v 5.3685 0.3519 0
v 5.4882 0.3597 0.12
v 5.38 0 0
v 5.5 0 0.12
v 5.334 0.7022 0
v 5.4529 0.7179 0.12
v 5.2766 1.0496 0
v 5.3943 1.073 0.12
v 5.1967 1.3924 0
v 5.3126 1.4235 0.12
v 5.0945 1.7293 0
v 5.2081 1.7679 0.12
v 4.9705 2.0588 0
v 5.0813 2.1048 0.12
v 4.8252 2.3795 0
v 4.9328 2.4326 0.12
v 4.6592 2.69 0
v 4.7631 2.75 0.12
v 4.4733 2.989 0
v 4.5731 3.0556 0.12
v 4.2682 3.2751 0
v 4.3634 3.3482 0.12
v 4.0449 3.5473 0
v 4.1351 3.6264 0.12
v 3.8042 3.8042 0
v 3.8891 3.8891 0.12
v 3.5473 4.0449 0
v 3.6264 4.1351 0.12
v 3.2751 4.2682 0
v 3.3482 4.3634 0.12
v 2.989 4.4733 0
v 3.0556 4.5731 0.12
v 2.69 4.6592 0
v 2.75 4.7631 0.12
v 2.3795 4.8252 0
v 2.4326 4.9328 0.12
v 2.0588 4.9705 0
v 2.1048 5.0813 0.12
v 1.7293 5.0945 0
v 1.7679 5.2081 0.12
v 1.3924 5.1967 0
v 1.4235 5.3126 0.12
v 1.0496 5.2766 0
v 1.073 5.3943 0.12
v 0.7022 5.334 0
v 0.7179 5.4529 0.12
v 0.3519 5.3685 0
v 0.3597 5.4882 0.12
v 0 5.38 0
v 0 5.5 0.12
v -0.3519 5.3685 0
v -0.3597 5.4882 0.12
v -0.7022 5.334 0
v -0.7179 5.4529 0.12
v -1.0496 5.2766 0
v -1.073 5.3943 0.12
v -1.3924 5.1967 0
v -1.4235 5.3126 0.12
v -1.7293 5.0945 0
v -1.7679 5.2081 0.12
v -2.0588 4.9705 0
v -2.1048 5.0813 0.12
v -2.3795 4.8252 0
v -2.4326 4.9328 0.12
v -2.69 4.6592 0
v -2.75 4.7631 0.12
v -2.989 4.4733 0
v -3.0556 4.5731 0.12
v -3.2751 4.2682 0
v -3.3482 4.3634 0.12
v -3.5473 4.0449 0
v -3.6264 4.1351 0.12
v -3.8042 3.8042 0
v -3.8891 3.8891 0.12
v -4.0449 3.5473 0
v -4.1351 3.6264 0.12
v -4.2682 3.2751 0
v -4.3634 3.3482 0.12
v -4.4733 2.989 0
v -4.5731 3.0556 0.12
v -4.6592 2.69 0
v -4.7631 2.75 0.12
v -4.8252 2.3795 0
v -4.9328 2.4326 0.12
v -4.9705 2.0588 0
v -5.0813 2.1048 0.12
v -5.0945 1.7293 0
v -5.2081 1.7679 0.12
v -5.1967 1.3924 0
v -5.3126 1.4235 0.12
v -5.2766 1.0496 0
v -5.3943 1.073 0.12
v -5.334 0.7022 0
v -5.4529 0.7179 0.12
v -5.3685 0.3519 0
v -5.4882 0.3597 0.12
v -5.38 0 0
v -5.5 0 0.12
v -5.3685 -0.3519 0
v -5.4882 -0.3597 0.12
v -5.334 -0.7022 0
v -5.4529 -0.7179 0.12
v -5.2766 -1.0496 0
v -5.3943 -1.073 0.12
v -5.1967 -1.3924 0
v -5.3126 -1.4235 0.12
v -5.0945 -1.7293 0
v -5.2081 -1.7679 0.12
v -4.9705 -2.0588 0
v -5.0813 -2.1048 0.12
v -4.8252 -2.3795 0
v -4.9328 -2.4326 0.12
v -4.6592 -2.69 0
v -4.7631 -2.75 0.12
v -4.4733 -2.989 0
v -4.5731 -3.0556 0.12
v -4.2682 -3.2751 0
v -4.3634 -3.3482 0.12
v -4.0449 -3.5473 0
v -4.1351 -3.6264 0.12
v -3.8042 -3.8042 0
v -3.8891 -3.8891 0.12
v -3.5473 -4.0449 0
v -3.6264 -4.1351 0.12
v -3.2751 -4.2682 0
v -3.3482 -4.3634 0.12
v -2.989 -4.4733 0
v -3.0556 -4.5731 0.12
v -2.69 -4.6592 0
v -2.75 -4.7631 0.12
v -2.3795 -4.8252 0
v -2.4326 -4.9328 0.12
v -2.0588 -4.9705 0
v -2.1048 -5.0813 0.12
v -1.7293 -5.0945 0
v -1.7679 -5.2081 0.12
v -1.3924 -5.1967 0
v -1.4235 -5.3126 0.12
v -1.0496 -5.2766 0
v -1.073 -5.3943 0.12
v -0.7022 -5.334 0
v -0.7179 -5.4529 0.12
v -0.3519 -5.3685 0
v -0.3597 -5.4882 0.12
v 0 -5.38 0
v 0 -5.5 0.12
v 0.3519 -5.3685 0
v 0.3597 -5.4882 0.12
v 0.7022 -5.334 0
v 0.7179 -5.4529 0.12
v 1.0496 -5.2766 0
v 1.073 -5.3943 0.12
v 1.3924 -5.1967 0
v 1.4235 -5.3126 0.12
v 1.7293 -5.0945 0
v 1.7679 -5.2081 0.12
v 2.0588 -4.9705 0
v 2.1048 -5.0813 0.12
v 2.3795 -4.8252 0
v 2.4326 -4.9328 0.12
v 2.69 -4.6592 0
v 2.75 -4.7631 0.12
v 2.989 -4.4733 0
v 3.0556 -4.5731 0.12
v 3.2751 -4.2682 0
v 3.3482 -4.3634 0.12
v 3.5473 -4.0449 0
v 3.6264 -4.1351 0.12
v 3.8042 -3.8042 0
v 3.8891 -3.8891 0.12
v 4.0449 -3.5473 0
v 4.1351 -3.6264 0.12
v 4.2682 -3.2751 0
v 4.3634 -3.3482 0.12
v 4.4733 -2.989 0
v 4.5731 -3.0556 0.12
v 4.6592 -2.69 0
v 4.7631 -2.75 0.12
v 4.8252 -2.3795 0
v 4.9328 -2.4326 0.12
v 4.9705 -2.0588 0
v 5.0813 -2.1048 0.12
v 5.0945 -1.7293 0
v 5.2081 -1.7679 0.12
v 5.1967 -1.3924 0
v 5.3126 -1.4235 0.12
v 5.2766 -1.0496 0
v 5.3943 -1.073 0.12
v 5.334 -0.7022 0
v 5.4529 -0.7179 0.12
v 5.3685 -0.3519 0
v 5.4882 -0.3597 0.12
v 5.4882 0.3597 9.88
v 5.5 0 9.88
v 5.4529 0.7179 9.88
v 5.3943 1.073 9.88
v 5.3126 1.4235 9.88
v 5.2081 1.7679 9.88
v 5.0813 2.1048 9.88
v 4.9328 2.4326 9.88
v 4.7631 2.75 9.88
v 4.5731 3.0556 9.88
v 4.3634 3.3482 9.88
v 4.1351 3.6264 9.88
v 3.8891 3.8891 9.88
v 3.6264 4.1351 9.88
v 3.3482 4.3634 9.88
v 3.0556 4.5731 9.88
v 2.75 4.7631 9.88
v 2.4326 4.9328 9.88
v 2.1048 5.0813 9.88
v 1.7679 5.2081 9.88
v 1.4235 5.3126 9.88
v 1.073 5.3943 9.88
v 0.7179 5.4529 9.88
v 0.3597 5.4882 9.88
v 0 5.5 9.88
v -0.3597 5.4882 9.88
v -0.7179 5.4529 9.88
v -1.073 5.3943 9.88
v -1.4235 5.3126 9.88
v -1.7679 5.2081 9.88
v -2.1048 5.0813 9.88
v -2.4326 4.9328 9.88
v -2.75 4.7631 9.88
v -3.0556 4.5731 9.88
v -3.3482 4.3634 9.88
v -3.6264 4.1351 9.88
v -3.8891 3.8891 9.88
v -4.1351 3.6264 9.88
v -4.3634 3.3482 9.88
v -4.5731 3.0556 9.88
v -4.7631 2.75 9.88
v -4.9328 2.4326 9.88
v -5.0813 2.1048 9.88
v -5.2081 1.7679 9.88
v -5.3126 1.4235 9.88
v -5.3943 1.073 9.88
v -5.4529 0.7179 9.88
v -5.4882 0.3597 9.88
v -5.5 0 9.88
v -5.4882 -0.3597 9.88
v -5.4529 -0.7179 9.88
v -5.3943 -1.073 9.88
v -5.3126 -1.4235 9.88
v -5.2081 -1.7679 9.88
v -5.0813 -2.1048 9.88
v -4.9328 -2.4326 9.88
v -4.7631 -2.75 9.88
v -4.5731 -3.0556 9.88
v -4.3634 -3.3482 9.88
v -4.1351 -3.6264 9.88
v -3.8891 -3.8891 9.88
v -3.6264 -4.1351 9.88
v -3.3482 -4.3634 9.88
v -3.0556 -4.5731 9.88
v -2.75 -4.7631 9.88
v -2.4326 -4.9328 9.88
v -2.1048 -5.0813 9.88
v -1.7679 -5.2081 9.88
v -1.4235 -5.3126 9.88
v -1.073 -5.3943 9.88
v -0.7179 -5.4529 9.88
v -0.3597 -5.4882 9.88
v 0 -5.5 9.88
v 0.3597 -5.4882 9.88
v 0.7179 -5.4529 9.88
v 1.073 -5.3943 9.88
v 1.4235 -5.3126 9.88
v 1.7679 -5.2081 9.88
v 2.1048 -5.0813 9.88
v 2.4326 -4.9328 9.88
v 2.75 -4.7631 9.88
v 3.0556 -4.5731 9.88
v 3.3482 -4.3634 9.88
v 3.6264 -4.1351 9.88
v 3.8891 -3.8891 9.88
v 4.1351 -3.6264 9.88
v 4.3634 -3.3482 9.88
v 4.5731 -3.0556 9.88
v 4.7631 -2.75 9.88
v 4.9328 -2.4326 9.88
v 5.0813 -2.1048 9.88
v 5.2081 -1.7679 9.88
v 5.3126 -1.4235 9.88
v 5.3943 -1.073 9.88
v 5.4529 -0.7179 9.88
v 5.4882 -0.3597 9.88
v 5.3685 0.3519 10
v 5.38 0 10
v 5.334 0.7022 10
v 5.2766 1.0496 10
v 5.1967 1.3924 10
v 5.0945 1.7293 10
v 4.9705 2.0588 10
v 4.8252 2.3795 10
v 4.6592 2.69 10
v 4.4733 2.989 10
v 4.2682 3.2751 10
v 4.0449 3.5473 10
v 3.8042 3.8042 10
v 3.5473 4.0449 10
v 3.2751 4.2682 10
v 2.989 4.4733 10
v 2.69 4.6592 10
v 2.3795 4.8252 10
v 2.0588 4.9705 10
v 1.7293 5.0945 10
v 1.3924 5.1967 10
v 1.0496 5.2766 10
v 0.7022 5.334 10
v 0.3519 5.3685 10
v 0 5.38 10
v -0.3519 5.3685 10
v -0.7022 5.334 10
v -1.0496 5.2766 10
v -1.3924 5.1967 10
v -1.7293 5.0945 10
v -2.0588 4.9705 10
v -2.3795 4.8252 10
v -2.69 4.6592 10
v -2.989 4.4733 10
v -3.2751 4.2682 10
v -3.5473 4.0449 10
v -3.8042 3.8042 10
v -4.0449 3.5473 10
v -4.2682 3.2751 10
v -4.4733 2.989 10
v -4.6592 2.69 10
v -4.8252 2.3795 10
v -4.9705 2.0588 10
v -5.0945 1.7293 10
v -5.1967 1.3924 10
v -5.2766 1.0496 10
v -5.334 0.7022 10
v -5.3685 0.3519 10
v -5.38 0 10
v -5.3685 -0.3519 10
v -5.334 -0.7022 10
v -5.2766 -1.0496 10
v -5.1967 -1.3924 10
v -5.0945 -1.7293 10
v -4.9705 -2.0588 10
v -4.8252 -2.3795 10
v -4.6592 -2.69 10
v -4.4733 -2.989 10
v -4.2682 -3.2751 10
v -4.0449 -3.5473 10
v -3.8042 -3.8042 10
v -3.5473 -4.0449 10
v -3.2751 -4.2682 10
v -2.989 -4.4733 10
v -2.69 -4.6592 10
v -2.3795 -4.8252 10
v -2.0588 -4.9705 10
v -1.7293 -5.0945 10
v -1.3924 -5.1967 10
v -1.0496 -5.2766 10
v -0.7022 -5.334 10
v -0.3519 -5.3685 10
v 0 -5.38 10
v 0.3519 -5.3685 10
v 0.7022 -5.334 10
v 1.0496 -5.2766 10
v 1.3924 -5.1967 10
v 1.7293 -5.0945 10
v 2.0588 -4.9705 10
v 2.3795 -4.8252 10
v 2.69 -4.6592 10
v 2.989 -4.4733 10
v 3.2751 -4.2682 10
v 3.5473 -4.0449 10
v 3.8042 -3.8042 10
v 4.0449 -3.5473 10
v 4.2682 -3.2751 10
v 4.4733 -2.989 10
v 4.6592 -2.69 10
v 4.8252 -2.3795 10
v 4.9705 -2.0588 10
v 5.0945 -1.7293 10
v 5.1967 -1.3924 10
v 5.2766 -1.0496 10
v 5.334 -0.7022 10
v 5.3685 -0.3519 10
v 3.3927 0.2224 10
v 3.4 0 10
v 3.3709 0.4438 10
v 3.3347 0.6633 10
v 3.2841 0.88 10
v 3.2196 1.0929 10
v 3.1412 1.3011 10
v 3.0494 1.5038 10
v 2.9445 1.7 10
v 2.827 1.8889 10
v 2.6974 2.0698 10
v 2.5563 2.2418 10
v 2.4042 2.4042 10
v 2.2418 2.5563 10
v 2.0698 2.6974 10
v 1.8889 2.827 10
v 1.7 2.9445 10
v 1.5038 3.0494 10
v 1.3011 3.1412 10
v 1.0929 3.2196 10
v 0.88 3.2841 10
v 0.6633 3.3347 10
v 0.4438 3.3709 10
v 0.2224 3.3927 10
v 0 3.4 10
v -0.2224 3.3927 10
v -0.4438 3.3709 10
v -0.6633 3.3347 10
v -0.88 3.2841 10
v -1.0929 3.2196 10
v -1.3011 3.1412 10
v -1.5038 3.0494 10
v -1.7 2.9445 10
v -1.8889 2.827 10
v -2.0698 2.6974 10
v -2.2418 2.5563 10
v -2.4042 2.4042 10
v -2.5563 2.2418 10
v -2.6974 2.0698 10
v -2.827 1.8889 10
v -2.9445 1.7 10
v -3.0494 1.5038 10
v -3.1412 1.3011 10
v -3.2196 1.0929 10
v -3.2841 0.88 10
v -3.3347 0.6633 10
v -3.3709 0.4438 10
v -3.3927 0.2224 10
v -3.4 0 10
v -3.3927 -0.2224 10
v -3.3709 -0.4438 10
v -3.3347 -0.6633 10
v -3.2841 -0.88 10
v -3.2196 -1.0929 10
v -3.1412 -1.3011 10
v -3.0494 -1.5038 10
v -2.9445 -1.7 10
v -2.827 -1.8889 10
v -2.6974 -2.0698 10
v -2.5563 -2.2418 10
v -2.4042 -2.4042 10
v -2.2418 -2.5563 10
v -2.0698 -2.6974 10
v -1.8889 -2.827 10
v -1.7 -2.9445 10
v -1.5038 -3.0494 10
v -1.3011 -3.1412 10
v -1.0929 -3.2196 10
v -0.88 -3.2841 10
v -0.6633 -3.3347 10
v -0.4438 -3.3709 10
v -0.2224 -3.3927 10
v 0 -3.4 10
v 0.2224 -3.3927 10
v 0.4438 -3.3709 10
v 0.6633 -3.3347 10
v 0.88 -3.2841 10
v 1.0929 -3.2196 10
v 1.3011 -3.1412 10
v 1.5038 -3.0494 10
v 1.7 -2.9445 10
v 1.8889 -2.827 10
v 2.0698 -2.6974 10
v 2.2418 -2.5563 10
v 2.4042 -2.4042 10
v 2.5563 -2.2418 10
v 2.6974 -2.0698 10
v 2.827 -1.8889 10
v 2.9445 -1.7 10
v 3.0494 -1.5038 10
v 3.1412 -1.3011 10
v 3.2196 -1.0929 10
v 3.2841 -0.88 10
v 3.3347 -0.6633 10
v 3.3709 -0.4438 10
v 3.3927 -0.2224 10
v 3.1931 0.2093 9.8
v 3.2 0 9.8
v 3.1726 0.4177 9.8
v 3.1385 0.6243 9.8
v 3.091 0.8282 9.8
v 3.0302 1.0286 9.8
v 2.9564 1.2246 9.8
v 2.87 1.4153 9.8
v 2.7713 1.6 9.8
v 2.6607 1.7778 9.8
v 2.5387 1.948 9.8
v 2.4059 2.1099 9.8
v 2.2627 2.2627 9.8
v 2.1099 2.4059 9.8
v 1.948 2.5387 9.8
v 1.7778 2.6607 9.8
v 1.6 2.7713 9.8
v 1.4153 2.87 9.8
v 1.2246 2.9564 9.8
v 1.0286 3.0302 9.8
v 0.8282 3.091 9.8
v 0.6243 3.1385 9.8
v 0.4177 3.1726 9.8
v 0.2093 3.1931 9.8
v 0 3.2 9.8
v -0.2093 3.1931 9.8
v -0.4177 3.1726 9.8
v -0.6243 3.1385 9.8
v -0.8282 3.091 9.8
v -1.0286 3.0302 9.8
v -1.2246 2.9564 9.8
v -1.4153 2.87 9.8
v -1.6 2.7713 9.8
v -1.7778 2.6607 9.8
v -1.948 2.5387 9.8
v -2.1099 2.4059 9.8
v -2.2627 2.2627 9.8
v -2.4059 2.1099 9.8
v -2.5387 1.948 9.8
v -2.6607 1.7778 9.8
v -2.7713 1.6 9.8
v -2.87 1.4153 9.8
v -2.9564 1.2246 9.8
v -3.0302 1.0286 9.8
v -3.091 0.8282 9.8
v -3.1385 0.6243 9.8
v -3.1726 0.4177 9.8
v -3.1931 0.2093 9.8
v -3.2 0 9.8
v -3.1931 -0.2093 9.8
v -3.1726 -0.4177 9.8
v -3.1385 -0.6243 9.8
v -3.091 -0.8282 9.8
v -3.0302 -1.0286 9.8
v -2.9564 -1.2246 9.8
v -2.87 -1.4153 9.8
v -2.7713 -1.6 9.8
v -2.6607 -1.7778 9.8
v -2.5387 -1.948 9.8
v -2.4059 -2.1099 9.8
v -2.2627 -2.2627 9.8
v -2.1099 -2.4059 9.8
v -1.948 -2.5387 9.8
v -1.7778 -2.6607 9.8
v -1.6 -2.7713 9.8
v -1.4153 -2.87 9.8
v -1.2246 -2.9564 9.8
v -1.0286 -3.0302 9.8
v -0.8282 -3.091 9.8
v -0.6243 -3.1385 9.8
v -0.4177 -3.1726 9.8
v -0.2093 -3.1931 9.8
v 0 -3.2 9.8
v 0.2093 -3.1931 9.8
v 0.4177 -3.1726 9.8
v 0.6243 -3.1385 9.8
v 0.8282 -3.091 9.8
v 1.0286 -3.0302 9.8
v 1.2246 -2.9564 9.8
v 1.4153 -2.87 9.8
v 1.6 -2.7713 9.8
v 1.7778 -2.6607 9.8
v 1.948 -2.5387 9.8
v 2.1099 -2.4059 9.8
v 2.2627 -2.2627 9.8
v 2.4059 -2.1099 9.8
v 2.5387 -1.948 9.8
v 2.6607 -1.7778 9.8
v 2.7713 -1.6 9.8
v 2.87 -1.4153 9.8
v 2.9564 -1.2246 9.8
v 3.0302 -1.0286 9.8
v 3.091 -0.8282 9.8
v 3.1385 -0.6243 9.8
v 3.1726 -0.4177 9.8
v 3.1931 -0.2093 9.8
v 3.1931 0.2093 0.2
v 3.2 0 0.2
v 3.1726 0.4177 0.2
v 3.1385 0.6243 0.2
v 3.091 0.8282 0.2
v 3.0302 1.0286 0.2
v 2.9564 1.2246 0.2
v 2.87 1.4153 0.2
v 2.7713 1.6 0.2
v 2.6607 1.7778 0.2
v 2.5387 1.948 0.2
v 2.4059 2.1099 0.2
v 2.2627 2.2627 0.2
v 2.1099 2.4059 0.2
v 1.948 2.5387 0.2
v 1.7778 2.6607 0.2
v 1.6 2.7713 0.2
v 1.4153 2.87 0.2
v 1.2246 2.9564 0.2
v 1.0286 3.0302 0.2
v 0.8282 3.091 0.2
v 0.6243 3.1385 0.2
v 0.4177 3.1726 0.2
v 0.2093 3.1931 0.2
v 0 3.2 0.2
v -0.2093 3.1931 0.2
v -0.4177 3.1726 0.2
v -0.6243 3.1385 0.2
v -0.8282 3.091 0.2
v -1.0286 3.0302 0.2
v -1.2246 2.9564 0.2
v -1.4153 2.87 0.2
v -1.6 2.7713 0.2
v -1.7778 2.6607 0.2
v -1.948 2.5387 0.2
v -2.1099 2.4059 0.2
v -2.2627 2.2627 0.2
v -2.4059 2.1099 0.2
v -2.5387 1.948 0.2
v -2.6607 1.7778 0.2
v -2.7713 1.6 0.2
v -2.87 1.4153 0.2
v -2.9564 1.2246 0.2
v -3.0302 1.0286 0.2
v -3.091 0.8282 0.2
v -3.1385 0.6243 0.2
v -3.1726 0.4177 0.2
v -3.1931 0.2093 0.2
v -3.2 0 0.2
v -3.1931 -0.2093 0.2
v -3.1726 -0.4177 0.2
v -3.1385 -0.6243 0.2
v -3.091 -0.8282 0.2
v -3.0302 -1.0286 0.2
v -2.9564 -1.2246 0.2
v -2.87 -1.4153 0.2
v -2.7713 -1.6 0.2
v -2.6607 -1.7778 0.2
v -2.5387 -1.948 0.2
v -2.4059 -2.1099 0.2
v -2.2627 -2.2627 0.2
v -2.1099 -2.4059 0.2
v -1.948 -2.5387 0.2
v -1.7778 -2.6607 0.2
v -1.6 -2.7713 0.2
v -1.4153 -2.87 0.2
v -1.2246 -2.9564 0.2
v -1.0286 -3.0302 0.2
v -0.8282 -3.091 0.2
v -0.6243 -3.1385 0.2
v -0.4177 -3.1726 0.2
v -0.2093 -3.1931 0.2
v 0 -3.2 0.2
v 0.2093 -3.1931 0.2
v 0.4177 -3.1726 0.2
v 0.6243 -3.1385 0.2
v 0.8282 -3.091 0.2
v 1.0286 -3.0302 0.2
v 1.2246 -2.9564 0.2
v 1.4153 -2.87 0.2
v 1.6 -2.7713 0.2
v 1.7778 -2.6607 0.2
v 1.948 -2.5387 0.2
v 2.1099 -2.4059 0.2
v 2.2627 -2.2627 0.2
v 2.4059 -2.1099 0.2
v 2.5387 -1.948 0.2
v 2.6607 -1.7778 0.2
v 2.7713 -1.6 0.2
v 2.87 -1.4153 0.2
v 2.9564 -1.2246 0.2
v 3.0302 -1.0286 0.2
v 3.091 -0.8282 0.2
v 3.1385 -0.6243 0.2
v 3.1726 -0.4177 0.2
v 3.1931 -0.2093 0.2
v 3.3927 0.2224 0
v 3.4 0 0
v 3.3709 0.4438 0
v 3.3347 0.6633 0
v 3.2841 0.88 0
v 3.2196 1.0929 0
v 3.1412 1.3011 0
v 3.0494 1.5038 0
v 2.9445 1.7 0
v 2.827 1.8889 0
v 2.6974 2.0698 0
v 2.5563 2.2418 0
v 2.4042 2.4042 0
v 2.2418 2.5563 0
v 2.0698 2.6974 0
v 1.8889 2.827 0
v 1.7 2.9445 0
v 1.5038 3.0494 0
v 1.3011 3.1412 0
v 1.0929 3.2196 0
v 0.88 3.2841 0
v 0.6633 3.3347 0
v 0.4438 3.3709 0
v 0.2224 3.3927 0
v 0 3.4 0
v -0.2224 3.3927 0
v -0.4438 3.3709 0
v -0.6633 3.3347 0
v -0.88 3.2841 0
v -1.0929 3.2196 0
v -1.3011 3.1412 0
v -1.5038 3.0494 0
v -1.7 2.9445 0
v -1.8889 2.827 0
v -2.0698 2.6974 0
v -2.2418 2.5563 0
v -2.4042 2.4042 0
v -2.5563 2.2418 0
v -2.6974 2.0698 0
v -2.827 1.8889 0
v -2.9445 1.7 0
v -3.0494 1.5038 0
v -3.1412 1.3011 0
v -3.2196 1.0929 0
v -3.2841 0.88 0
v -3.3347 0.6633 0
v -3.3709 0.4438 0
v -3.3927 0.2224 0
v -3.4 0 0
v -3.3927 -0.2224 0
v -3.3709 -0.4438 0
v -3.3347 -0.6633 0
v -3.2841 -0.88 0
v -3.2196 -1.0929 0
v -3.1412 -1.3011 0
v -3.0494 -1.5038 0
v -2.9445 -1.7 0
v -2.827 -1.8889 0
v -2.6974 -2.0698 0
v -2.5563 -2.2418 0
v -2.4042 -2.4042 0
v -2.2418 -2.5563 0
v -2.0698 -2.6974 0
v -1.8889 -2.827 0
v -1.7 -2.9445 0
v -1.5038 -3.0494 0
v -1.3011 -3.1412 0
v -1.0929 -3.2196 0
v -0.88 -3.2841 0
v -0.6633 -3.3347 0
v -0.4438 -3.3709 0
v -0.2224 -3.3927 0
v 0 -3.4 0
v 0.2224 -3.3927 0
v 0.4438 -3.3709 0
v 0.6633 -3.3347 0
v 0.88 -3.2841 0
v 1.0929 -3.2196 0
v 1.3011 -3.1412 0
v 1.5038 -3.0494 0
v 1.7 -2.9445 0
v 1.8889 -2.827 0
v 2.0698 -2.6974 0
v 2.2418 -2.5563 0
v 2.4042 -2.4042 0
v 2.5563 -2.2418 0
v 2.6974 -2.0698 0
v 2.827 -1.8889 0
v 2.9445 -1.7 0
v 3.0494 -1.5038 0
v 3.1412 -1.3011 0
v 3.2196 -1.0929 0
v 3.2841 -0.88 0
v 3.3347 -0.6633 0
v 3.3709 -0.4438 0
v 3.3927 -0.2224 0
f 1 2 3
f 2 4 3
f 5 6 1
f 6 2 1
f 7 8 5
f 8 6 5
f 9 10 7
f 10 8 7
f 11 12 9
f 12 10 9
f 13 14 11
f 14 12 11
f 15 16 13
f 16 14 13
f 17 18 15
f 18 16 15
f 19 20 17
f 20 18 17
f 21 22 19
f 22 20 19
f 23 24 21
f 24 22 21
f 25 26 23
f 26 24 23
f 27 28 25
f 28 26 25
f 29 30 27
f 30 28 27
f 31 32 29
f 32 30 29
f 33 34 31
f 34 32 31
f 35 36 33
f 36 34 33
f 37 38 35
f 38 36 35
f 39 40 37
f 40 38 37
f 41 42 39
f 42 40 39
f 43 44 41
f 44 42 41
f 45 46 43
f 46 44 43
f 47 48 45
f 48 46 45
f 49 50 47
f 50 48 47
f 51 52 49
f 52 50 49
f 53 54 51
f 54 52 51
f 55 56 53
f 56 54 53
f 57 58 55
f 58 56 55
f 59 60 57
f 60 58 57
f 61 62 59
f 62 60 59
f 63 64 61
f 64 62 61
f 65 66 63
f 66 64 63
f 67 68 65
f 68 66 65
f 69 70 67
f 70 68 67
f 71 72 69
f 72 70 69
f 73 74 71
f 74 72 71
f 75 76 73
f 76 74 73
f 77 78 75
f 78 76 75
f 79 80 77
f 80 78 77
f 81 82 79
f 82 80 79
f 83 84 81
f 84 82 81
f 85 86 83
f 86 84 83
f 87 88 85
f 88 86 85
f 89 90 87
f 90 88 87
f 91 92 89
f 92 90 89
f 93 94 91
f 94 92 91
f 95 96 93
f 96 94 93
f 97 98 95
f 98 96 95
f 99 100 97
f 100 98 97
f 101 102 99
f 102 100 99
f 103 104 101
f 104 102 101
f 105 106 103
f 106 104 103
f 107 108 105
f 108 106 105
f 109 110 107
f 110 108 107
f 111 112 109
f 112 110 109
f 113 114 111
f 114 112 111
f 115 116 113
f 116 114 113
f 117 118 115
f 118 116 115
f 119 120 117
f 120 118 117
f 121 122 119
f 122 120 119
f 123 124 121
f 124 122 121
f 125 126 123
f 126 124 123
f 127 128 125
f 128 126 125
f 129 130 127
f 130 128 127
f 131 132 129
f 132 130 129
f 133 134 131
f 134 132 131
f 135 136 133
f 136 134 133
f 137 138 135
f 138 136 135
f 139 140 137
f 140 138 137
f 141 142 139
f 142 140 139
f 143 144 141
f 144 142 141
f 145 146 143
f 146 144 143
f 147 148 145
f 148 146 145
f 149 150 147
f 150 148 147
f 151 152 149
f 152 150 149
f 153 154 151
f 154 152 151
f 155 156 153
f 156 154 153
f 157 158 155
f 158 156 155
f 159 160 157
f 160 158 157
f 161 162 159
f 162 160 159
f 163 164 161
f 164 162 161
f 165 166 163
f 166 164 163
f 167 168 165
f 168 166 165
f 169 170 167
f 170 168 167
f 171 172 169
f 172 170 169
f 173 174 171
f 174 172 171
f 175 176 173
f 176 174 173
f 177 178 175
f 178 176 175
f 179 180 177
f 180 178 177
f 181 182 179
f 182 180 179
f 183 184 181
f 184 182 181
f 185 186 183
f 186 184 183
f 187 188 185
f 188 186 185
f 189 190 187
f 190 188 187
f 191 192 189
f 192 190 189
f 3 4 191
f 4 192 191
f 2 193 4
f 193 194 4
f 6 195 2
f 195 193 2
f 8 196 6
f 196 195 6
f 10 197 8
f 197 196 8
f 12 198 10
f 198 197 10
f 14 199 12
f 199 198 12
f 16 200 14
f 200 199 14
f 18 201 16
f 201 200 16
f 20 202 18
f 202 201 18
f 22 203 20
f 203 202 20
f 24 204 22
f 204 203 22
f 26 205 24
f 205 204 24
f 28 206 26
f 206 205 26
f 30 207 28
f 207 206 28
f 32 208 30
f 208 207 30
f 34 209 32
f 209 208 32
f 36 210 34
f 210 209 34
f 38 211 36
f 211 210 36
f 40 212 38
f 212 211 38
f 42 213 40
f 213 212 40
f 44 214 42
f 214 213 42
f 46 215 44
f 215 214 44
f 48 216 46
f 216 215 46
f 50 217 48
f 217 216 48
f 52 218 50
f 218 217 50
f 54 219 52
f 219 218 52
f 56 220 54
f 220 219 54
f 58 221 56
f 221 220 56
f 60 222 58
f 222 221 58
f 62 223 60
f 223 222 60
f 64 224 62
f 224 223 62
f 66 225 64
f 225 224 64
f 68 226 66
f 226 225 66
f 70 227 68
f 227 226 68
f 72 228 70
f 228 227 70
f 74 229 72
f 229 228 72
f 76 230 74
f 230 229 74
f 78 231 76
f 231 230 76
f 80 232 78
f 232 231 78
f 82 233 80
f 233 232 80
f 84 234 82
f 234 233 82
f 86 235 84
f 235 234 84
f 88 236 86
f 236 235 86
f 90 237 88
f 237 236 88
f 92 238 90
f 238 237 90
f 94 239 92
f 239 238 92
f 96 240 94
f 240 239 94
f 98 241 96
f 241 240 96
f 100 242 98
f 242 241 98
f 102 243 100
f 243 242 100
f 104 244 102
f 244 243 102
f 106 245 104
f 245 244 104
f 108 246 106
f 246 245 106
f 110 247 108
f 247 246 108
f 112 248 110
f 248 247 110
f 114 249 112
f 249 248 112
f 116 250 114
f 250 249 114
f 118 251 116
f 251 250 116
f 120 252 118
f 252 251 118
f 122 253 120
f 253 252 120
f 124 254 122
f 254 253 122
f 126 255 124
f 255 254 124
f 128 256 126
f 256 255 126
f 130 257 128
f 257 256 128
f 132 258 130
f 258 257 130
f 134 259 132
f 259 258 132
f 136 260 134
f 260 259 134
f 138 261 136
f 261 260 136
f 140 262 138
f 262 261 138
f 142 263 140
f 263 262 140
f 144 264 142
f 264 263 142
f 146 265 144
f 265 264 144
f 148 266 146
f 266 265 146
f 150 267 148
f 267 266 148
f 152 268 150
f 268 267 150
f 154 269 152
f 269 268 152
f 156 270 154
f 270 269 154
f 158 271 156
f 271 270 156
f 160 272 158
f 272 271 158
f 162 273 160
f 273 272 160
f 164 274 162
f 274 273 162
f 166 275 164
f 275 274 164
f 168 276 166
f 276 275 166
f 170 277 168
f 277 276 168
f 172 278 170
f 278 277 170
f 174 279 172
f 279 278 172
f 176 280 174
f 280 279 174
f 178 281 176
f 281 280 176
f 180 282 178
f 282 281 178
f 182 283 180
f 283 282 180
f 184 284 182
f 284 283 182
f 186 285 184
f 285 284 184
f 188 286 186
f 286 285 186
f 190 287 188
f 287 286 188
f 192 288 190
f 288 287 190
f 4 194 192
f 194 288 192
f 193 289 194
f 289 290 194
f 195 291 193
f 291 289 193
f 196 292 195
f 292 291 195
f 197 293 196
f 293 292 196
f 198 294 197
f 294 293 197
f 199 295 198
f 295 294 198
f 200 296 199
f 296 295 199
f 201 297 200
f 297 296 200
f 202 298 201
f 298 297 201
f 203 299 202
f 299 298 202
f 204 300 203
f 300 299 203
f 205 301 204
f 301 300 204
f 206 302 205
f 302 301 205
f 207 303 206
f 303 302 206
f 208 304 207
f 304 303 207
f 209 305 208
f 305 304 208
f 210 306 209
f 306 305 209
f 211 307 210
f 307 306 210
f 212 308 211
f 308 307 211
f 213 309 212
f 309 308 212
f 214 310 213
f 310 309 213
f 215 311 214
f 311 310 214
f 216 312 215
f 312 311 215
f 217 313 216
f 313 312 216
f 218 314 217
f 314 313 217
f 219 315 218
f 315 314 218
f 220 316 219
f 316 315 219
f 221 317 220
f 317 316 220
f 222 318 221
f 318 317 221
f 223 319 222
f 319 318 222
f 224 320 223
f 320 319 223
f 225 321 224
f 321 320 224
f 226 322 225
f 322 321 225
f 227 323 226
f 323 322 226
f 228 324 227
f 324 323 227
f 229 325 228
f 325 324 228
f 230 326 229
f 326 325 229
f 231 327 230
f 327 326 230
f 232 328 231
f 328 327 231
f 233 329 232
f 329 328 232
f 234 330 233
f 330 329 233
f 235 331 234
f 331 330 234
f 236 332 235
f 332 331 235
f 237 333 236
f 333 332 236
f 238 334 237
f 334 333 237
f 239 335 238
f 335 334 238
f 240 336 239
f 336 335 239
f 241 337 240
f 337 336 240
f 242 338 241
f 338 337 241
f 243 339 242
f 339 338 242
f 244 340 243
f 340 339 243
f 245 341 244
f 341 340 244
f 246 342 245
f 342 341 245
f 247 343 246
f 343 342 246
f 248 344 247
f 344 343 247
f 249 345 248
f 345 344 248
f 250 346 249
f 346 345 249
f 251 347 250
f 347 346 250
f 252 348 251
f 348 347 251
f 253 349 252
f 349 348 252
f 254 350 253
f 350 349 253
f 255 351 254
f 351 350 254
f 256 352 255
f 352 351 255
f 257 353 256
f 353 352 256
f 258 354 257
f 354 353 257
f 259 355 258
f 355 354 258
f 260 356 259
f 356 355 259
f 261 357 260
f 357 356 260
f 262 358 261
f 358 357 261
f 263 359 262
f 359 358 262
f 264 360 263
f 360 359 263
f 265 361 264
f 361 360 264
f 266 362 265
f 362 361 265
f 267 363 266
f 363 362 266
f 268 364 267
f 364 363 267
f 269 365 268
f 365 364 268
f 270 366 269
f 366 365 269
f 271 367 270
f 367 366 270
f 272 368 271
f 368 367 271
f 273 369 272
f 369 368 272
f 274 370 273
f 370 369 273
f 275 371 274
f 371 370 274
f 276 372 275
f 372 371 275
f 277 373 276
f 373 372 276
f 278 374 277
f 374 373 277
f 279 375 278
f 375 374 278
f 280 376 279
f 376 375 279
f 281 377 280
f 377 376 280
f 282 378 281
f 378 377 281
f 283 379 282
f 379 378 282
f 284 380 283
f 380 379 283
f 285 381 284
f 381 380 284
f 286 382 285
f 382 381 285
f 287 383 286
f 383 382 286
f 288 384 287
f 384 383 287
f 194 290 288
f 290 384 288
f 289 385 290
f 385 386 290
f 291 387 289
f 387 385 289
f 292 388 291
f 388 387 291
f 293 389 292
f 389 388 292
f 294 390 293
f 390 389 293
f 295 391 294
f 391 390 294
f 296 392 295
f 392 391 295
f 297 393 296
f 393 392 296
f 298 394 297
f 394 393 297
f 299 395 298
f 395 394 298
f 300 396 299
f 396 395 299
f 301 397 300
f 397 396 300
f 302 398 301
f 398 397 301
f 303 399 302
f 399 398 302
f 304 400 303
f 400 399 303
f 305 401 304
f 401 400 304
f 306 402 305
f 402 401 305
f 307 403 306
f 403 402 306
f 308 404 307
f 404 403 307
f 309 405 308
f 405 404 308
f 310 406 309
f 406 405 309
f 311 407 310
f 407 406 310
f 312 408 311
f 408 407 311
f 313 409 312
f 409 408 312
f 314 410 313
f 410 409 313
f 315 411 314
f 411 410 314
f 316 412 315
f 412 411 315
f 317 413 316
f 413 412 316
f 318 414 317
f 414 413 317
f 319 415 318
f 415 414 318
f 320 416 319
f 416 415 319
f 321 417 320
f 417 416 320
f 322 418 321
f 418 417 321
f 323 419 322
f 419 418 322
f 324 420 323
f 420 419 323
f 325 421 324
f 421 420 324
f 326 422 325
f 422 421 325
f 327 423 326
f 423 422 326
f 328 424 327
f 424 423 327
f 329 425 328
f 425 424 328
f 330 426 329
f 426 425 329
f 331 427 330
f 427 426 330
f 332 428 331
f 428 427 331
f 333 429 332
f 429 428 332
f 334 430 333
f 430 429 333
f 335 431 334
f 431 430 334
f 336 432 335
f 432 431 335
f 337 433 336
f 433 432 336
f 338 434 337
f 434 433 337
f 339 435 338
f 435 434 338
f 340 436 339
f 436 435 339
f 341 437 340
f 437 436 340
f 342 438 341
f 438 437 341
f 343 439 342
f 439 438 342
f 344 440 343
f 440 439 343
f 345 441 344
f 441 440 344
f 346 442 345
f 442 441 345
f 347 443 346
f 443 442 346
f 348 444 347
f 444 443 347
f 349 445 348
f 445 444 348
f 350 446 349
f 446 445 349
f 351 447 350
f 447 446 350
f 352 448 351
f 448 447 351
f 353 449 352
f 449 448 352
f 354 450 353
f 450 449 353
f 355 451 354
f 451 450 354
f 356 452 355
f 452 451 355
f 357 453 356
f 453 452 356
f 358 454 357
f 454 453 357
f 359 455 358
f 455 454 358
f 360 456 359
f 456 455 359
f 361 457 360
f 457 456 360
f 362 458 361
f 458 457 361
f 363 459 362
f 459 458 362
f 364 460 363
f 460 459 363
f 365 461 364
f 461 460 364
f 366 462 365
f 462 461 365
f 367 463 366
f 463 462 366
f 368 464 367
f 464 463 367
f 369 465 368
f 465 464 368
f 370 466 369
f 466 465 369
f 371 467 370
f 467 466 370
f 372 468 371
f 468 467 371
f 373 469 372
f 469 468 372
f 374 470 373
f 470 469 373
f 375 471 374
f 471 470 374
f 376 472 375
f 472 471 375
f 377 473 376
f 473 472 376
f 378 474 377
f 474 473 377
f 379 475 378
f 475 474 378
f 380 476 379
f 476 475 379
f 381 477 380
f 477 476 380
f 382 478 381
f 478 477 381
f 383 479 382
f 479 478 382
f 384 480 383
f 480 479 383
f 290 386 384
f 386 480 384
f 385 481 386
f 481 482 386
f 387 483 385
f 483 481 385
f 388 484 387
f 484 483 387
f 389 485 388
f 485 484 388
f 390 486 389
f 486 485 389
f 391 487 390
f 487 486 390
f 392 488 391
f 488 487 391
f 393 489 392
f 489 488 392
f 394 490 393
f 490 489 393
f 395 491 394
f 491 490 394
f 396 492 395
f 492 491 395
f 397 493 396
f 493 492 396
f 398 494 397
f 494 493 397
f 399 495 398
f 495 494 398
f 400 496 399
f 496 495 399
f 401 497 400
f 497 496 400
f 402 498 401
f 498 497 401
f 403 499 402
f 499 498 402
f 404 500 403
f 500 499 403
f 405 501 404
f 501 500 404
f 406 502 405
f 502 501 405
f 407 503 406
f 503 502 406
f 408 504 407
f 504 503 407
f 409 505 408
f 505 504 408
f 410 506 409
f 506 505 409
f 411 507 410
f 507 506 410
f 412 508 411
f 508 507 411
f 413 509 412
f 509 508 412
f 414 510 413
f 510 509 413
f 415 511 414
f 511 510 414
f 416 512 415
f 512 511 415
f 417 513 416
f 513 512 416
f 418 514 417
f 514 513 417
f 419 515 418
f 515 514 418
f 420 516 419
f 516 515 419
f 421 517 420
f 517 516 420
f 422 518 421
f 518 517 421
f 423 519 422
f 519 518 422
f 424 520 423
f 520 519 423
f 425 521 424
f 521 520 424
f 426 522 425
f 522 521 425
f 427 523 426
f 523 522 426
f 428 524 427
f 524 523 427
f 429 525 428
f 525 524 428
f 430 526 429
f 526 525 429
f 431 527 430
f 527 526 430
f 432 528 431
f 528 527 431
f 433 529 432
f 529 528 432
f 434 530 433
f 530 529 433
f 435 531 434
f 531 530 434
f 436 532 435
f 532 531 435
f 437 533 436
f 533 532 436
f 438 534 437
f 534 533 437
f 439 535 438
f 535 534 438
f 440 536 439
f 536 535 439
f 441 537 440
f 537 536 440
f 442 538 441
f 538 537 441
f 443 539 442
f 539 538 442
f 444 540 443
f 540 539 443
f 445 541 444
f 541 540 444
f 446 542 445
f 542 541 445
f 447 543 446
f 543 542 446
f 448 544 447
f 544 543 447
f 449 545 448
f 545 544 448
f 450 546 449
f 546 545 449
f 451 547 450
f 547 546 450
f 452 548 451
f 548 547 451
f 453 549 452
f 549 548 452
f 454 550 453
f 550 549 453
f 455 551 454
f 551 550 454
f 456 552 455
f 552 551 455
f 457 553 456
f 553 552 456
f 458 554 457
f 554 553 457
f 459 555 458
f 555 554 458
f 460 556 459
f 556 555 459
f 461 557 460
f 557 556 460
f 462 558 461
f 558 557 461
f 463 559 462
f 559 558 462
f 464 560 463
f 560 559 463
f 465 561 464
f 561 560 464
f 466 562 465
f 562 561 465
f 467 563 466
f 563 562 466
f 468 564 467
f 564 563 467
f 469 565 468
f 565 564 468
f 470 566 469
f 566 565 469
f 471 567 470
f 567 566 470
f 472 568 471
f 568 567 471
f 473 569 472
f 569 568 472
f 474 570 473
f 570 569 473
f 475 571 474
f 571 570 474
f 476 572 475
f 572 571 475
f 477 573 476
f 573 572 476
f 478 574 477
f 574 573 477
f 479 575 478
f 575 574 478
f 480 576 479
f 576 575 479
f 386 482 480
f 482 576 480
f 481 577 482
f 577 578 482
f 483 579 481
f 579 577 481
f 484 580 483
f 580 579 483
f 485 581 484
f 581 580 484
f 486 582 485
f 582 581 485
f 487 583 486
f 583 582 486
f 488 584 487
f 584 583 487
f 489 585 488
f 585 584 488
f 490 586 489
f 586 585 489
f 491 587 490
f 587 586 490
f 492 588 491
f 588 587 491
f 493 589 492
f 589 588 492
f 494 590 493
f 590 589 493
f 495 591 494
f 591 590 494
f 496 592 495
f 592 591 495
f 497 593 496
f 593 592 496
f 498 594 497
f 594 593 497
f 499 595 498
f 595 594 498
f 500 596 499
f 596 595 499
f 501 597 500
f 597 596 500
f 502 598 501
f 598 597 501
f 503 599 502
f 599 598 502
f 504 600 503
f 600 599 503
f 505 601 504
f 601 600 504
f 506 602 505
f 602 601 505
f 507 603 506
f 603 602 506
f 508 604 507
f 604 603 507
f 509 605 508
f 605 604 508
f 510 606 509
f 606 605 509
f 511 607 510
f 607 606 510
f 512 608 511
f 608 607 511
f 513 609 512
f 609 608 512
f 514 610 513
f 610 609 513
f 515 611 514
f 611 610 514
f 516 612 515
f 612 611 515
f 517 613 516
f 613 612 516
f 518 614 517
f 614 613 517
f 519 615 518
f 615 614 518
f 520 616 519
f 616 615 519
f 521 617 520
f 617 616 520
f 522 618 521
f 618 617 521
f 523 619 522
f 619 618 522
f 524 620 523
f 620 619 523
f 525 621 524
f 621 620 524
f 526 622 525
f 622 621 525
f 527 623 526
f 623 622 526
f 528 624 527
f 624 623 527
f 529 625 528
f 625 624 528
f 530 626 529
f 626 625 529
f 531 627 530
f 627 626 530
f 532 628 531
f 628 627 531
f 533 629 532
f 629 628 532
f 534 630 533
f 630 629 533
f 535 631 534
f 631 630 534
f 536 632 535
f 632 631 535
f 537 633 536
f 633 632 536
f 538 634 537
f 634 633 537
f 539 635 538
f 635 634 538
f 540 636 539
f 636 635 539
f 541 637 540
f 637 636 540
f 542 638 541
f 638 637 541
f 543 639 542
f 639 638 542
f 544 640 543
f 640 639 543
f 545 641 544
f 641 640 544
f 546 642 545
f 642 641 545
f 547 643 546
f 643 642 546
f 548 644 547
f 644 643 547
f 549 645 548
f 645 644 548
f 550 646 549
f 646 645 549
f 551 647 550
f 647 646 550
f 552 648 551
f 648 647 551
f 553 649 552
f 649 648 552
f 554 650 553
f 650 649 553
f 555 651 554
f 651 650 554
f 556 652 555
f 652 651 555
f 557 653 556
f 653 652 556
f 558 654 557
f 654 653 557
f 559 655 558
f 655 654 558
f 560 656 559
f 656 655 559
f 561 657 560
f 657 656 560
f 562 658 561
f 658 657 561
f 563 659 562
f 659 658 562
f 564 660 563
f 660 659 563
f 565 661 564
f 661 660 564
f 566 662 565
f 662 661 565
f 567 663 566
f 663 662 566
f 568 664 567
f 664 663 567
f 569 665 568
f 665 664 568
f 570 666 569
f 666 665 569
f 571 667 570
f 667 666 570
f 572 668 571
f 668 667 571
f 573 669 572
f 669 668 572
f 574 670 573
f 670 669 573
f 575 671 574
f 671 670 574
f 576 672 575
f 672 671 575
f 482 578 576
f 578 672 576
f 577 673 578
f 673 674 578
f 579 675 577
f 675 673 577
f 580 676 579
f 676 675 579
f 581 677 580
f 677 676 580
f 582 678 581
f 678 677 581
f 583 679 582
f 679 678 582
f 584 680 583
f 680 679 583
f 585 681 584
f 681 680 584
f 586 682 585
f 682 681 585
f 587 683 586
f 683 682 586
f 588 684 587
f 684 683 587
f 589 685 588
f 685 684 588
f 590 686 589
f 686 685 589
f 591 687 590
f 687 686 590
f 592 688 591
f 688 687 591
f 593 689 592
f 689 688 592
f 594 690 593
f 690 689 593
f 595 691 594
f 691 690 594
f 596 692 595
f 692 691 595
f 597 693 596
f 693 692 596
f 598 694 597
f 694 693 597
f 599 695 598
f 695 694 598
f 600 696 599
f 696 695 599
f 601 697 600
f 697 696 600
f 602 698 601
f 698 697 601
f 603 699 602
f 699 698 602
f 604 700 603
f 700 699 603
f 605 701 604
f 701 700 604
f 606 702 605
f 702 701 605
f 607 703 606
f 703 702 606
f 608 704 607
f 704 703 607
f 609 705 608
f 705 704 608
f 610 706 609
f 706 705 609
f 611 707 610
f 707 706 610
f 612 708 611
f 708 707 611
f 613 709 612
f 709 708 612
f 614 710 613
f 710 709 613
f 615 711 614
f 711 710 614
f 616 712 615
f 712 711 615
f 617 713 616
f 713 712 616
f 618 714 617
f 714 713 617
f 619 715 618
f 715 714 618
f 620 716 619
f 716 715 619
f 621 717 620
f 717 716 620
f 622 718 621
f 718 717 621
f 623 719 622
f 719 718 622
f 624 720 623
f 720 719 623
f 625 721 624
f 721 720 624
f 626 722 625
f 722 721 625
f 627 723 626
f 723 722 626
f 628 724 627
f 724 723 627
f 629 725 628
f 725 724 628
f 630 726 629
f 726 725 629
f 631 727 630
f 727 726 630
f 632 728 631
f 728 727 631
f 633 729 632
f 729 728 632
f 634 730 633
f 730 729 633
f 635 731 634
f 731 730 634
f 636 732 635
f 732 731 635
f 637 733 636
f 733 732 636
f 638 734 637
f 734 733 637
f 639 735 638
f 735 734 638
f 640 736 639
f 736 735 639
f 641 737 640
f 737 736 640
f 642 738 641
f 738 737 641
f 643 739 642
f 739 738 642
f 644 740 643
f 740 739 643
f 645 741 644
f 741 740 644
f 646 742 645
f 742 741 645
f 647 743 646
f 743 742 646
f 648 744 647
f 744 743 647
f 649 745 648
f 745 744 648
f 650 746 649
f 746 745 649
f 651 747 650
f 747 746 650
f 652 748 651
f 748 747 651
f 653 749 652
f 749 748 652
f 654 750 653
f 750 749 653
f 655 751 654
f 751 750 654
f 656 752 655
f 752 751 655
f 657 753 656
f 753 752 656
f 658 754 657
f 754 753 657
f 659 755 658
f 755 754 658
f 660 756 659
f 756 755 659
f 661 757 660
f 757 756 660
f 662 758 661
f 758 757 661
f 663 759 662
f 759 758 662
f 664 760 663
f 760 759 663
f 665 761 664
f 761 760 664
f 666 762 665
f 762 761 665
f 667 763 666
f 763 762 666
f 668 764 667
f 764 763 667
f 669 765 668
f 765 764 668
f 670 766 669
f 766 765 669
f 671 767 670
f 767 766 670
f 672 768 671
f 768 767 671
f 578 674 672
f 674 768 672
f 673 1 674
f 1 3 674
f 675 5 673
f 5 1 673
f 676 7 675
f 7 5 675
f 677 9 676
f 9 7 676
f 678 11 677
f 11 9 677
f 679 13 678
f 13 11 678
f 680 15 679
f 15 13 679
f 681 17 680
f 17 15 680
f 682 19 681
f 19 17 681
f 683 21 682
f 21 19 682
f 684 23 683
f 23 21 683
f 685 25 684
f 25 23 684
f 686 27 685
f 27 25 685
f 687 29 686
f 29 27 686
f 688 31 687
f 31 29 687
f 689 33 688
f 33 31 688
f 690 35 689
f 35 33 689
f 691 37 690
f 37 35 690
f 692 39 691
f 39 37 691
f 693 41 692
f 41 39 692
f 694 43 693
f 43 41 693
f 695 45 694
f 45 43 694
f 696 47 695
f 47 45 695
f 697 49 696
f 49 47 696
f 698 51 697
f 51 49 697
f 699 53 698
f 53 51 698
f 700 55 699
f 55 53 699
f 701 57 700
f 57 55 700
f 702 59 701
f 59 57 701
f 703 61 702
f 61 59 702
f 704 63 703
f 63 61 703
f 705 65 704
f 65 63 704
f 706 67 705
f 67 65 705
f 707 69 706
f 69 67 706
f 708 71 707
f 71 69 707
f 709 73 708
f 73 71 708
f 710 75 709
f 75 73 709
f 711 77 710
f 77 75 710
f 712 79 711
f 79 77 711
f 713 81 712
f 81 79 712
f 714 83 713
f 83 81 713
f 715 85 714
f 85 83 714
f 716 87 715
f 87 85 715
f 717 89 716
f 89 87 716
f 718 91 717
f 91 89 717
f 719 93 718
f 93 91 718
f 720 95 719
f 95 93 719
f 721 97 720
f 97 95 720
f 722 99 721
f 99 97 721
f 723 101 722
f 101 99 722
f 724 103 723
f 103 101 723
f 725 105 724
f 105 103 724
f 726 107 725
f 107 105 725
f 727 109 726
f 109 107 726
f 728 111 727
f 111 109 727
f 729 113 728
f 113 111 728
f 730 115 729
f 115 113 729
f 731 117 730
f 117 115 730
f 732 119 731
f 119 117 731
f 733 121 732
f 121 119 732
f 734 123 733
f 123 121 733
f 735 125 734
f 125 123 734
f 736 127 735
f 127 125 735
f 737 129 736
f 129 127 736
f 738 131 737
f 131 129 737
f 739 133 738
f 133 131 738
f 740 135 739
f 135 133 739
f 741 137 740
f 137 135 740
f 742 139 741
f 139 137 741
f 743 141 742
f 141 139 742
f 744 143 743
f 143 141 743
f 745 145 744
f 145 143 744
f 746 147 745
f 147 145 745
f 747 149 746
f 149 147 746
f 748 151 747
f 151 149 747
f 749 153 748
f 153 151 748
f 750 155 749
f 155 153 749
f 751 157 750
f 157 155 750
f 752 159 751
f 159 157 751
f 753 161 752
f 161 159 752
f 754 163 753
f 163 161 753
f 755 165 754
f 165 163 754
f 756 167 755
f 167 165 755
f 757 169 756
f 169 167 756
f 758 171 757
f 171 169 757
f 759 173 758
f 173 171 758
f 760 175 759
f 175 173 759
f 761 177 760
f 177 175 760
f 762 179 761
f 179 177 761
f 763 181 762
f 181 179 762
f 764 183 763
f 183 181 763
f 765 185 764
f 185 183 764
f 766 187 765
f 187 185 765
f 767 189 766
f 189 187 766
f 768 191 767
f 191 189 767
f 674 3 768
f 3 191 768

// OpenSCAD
// OOMP generic catalogue model; units: mm.
// Stud length is additional to body depth. Tapping depths are model assumptions.
variant = "full"; // [full, display]
family = "spacer";
connection_type = "plain";
depth_mm = 10;
stud_length_mm = 0;
tapped_depth_mm = 0;
bore_mm = 6.4;
outer_diameter_mm = 11;
across_flats_mm = 6;
thread_nominal_diameter_mm = 3;
thread_pitch_mm = 0.5;
edge_chamfer_mm = 0.12;
mouth_chamfer_mm = 0.2;
angular_segments = 96;
samples_per_pitch = 16;

// Boundary travels up the outside, then down any tapped/plain bore.
// Equal-height rings at shoulders form the annular shoulder faces.
n = angular_segments;
threaded = family == "standoff";
has_stud = connection_type == "stud_to_tapped" || connection_type == "stud_to_stud";
two_studs = connection_type == "stud_to_stud";
through = !threaded || connection_type == "tapped_to_tapped";
pitch = thread_pitch_mm;
diameter = threaded ? thread_nominal_diameter_mm : bore_mm;
minor = diameter - 5*sqrt(3)*pitch/8;
transition = mouth_chamfer_mm + (threaded ? 5*sqrt(3)*pitch/16 : 0);
tip_chamfer = mouth_chamfer_mm + 17*sqrt(3)*pitch/48;
function sorted(v) = len(v)<=1 ? v : let(p=v[0])
    concat(sorted([for(x=v) if(x<p-1e-8) x]), [p], sorted([for(x=v) if(x>p+1e-8) x]));
function reverse(v) = [for(i=[len(v)-1:-1:0]) v[i]];
function theta(i) = i*360/n;
function fract(x) = x-floor(x);
function phase_distance(i,z) = abs(fract(z/pitch-theta(i)/360+0.5)-0.5);
function thread_r(i,z) = minor/2 + min(5*sqrt(3)*pitch/16,
    max(0,(phase_distance(i,z)-0.125)*pitch*sqrt(3)));
function stud_r(i,z,tip) = min(diameter/2 - (variant=="full" ?
    min(17*sqrt(3)*pitch/48,max(0,(phase_distance(i,z)-0.0625)*pitch*sqrt(3))) : 0),
    diameter/2-tip_chamfer+abs(z-tip));
function body_r(i,z) = (threaded ? across_flats_mm/2/cos(theta(i)%60-30) : outer_diameter_mm/2)
    - max(0,edge_chamfer_mm-min(z,depth_mm-z));
function bore_r(i,z) = max(threaded ? (variant=="full" ? thread_r(i,z) : minor/2) : diameter/2,
    diameter/2+mouth_chamfer_mm-(through ? min(z,depth_mm-z) : depth_mm-z));
function stud_z(a,b,tip) = let(count=variant=="full" ? ceil(stud_length_mm/pitch*samples_per_pitch) : 1)
    sorted(concat([for(i=[0:count]) a+(b-a)*i/count], [tip==a ? tip+tip_chamfer : tip-tip_chamfer]));
body_z = sorted([0,edge_chamfer_mm,depth_mm-edge_chamfer_mm,depth_mm]);
low = through ? 0 : depth_mm-tapped_depth_mm;
count = threaded && variant=="full" ? ceil((depth_mm-low)/pitch*samples_per_pitch) : 1;
bore_z = two_studs ? [] : reverse(sorted(concat(
    [for(i=[0:count]) low+(depth_mm-low)*i/count],
    [depth_mm-mouth_chamfer_mm,depth_mm-transition],
    through ? [mouth_chamfer_mm,transition] : [])));
// Ring descriptors: [height, kind, tip]. Kind: 0 body, 1 stud, 2 bore.
rings = concat(
    has_stud ? [for(z=stud_z(-stud_length_mm,0,-stud_length_mm)) [z,1,-stud_length_mm]] : [],
    [for(z=body_z) [z,0,0]],
    two_studs ? [for(z=stud_z(depth_mm,depth_mm+stud_length_mm,depth_mm+stud_length_mm)) [z,1,depth_mm+stud_length_mm]] : [],
    [for(z=bore_z) [z,2,0]]);
function radius(i,ring) = ring[1]==0 ? body_r(i,ring[0]) :
    ring[1]==1 ? stud_r(i,ring[0],ring[2]) : bore_r(i,ring[0]);
points = concat([for(ring=rings) for(i=[0:n-1])
    [radius(i,ring)*cos(theta(i)),radius(i,ring)*sin(theta(i)),ring[0]]],
    through ? [] : [[0,0,rings[0][0]],[0,0,rings[len(rings)-1][0]]]);
center = len(rings)*n;
last = (len(rings)-1)*n;
// OpenSCAD winding is opposite to STL winding.
faces = concat(
    [for(j=[0:len(rings)-(through ? 1 : 2)]) for(i=[0:n-1]) each
        let(a=j*n+i,b=j*n+(i+1)%n,c=((j+1)%len(rings))*n+(i+1)%n,d=((j+1)%len(rings))*n+i)
        [[a,c,b],[a,d,c]]],
    through ? [] : [for(i=[0:n-1]) each let(k=(i+1)%n)
        [[center,i,k],[center+1,last+k,last+i]]]);
assert(family=="spacer" || family=="standoff");
assert(!threaded || connection_type=="tapped_to_tapped" || has_stud);
assert(depth_mm>0 && diameter>0 && pitch>0);
assert(variant=="full" || variant=="display");
assert(n>=24 && n%12==0 && samples_per_pitch>=8);
assert(mouth_chamfer_mm>0 && mouth_chamfer_mm<depth_mm/2);
assert(edge_chamfer_mm>=0 && edge_chamfer_mm<depth_mm/2);
assert(diameter+4*max(mouth_chamfer_mm,edge_chamfer_mm) < (threaded ? across_flats_mm : outer_diameter_mm));
assert(!has_stud || stud_length_mm>2*mouth_chamfer_mm);
assert(!through || !threaded || 2*transition<depth_mm);
assert(connection_type!="stud_to_tapped" || (tapped_depth_mm>transition && tapped_depth_mm<depth_mm));
color([0.86,0.85,0.81]) polyhedron(points=points,faces=faces,convexity=20);
